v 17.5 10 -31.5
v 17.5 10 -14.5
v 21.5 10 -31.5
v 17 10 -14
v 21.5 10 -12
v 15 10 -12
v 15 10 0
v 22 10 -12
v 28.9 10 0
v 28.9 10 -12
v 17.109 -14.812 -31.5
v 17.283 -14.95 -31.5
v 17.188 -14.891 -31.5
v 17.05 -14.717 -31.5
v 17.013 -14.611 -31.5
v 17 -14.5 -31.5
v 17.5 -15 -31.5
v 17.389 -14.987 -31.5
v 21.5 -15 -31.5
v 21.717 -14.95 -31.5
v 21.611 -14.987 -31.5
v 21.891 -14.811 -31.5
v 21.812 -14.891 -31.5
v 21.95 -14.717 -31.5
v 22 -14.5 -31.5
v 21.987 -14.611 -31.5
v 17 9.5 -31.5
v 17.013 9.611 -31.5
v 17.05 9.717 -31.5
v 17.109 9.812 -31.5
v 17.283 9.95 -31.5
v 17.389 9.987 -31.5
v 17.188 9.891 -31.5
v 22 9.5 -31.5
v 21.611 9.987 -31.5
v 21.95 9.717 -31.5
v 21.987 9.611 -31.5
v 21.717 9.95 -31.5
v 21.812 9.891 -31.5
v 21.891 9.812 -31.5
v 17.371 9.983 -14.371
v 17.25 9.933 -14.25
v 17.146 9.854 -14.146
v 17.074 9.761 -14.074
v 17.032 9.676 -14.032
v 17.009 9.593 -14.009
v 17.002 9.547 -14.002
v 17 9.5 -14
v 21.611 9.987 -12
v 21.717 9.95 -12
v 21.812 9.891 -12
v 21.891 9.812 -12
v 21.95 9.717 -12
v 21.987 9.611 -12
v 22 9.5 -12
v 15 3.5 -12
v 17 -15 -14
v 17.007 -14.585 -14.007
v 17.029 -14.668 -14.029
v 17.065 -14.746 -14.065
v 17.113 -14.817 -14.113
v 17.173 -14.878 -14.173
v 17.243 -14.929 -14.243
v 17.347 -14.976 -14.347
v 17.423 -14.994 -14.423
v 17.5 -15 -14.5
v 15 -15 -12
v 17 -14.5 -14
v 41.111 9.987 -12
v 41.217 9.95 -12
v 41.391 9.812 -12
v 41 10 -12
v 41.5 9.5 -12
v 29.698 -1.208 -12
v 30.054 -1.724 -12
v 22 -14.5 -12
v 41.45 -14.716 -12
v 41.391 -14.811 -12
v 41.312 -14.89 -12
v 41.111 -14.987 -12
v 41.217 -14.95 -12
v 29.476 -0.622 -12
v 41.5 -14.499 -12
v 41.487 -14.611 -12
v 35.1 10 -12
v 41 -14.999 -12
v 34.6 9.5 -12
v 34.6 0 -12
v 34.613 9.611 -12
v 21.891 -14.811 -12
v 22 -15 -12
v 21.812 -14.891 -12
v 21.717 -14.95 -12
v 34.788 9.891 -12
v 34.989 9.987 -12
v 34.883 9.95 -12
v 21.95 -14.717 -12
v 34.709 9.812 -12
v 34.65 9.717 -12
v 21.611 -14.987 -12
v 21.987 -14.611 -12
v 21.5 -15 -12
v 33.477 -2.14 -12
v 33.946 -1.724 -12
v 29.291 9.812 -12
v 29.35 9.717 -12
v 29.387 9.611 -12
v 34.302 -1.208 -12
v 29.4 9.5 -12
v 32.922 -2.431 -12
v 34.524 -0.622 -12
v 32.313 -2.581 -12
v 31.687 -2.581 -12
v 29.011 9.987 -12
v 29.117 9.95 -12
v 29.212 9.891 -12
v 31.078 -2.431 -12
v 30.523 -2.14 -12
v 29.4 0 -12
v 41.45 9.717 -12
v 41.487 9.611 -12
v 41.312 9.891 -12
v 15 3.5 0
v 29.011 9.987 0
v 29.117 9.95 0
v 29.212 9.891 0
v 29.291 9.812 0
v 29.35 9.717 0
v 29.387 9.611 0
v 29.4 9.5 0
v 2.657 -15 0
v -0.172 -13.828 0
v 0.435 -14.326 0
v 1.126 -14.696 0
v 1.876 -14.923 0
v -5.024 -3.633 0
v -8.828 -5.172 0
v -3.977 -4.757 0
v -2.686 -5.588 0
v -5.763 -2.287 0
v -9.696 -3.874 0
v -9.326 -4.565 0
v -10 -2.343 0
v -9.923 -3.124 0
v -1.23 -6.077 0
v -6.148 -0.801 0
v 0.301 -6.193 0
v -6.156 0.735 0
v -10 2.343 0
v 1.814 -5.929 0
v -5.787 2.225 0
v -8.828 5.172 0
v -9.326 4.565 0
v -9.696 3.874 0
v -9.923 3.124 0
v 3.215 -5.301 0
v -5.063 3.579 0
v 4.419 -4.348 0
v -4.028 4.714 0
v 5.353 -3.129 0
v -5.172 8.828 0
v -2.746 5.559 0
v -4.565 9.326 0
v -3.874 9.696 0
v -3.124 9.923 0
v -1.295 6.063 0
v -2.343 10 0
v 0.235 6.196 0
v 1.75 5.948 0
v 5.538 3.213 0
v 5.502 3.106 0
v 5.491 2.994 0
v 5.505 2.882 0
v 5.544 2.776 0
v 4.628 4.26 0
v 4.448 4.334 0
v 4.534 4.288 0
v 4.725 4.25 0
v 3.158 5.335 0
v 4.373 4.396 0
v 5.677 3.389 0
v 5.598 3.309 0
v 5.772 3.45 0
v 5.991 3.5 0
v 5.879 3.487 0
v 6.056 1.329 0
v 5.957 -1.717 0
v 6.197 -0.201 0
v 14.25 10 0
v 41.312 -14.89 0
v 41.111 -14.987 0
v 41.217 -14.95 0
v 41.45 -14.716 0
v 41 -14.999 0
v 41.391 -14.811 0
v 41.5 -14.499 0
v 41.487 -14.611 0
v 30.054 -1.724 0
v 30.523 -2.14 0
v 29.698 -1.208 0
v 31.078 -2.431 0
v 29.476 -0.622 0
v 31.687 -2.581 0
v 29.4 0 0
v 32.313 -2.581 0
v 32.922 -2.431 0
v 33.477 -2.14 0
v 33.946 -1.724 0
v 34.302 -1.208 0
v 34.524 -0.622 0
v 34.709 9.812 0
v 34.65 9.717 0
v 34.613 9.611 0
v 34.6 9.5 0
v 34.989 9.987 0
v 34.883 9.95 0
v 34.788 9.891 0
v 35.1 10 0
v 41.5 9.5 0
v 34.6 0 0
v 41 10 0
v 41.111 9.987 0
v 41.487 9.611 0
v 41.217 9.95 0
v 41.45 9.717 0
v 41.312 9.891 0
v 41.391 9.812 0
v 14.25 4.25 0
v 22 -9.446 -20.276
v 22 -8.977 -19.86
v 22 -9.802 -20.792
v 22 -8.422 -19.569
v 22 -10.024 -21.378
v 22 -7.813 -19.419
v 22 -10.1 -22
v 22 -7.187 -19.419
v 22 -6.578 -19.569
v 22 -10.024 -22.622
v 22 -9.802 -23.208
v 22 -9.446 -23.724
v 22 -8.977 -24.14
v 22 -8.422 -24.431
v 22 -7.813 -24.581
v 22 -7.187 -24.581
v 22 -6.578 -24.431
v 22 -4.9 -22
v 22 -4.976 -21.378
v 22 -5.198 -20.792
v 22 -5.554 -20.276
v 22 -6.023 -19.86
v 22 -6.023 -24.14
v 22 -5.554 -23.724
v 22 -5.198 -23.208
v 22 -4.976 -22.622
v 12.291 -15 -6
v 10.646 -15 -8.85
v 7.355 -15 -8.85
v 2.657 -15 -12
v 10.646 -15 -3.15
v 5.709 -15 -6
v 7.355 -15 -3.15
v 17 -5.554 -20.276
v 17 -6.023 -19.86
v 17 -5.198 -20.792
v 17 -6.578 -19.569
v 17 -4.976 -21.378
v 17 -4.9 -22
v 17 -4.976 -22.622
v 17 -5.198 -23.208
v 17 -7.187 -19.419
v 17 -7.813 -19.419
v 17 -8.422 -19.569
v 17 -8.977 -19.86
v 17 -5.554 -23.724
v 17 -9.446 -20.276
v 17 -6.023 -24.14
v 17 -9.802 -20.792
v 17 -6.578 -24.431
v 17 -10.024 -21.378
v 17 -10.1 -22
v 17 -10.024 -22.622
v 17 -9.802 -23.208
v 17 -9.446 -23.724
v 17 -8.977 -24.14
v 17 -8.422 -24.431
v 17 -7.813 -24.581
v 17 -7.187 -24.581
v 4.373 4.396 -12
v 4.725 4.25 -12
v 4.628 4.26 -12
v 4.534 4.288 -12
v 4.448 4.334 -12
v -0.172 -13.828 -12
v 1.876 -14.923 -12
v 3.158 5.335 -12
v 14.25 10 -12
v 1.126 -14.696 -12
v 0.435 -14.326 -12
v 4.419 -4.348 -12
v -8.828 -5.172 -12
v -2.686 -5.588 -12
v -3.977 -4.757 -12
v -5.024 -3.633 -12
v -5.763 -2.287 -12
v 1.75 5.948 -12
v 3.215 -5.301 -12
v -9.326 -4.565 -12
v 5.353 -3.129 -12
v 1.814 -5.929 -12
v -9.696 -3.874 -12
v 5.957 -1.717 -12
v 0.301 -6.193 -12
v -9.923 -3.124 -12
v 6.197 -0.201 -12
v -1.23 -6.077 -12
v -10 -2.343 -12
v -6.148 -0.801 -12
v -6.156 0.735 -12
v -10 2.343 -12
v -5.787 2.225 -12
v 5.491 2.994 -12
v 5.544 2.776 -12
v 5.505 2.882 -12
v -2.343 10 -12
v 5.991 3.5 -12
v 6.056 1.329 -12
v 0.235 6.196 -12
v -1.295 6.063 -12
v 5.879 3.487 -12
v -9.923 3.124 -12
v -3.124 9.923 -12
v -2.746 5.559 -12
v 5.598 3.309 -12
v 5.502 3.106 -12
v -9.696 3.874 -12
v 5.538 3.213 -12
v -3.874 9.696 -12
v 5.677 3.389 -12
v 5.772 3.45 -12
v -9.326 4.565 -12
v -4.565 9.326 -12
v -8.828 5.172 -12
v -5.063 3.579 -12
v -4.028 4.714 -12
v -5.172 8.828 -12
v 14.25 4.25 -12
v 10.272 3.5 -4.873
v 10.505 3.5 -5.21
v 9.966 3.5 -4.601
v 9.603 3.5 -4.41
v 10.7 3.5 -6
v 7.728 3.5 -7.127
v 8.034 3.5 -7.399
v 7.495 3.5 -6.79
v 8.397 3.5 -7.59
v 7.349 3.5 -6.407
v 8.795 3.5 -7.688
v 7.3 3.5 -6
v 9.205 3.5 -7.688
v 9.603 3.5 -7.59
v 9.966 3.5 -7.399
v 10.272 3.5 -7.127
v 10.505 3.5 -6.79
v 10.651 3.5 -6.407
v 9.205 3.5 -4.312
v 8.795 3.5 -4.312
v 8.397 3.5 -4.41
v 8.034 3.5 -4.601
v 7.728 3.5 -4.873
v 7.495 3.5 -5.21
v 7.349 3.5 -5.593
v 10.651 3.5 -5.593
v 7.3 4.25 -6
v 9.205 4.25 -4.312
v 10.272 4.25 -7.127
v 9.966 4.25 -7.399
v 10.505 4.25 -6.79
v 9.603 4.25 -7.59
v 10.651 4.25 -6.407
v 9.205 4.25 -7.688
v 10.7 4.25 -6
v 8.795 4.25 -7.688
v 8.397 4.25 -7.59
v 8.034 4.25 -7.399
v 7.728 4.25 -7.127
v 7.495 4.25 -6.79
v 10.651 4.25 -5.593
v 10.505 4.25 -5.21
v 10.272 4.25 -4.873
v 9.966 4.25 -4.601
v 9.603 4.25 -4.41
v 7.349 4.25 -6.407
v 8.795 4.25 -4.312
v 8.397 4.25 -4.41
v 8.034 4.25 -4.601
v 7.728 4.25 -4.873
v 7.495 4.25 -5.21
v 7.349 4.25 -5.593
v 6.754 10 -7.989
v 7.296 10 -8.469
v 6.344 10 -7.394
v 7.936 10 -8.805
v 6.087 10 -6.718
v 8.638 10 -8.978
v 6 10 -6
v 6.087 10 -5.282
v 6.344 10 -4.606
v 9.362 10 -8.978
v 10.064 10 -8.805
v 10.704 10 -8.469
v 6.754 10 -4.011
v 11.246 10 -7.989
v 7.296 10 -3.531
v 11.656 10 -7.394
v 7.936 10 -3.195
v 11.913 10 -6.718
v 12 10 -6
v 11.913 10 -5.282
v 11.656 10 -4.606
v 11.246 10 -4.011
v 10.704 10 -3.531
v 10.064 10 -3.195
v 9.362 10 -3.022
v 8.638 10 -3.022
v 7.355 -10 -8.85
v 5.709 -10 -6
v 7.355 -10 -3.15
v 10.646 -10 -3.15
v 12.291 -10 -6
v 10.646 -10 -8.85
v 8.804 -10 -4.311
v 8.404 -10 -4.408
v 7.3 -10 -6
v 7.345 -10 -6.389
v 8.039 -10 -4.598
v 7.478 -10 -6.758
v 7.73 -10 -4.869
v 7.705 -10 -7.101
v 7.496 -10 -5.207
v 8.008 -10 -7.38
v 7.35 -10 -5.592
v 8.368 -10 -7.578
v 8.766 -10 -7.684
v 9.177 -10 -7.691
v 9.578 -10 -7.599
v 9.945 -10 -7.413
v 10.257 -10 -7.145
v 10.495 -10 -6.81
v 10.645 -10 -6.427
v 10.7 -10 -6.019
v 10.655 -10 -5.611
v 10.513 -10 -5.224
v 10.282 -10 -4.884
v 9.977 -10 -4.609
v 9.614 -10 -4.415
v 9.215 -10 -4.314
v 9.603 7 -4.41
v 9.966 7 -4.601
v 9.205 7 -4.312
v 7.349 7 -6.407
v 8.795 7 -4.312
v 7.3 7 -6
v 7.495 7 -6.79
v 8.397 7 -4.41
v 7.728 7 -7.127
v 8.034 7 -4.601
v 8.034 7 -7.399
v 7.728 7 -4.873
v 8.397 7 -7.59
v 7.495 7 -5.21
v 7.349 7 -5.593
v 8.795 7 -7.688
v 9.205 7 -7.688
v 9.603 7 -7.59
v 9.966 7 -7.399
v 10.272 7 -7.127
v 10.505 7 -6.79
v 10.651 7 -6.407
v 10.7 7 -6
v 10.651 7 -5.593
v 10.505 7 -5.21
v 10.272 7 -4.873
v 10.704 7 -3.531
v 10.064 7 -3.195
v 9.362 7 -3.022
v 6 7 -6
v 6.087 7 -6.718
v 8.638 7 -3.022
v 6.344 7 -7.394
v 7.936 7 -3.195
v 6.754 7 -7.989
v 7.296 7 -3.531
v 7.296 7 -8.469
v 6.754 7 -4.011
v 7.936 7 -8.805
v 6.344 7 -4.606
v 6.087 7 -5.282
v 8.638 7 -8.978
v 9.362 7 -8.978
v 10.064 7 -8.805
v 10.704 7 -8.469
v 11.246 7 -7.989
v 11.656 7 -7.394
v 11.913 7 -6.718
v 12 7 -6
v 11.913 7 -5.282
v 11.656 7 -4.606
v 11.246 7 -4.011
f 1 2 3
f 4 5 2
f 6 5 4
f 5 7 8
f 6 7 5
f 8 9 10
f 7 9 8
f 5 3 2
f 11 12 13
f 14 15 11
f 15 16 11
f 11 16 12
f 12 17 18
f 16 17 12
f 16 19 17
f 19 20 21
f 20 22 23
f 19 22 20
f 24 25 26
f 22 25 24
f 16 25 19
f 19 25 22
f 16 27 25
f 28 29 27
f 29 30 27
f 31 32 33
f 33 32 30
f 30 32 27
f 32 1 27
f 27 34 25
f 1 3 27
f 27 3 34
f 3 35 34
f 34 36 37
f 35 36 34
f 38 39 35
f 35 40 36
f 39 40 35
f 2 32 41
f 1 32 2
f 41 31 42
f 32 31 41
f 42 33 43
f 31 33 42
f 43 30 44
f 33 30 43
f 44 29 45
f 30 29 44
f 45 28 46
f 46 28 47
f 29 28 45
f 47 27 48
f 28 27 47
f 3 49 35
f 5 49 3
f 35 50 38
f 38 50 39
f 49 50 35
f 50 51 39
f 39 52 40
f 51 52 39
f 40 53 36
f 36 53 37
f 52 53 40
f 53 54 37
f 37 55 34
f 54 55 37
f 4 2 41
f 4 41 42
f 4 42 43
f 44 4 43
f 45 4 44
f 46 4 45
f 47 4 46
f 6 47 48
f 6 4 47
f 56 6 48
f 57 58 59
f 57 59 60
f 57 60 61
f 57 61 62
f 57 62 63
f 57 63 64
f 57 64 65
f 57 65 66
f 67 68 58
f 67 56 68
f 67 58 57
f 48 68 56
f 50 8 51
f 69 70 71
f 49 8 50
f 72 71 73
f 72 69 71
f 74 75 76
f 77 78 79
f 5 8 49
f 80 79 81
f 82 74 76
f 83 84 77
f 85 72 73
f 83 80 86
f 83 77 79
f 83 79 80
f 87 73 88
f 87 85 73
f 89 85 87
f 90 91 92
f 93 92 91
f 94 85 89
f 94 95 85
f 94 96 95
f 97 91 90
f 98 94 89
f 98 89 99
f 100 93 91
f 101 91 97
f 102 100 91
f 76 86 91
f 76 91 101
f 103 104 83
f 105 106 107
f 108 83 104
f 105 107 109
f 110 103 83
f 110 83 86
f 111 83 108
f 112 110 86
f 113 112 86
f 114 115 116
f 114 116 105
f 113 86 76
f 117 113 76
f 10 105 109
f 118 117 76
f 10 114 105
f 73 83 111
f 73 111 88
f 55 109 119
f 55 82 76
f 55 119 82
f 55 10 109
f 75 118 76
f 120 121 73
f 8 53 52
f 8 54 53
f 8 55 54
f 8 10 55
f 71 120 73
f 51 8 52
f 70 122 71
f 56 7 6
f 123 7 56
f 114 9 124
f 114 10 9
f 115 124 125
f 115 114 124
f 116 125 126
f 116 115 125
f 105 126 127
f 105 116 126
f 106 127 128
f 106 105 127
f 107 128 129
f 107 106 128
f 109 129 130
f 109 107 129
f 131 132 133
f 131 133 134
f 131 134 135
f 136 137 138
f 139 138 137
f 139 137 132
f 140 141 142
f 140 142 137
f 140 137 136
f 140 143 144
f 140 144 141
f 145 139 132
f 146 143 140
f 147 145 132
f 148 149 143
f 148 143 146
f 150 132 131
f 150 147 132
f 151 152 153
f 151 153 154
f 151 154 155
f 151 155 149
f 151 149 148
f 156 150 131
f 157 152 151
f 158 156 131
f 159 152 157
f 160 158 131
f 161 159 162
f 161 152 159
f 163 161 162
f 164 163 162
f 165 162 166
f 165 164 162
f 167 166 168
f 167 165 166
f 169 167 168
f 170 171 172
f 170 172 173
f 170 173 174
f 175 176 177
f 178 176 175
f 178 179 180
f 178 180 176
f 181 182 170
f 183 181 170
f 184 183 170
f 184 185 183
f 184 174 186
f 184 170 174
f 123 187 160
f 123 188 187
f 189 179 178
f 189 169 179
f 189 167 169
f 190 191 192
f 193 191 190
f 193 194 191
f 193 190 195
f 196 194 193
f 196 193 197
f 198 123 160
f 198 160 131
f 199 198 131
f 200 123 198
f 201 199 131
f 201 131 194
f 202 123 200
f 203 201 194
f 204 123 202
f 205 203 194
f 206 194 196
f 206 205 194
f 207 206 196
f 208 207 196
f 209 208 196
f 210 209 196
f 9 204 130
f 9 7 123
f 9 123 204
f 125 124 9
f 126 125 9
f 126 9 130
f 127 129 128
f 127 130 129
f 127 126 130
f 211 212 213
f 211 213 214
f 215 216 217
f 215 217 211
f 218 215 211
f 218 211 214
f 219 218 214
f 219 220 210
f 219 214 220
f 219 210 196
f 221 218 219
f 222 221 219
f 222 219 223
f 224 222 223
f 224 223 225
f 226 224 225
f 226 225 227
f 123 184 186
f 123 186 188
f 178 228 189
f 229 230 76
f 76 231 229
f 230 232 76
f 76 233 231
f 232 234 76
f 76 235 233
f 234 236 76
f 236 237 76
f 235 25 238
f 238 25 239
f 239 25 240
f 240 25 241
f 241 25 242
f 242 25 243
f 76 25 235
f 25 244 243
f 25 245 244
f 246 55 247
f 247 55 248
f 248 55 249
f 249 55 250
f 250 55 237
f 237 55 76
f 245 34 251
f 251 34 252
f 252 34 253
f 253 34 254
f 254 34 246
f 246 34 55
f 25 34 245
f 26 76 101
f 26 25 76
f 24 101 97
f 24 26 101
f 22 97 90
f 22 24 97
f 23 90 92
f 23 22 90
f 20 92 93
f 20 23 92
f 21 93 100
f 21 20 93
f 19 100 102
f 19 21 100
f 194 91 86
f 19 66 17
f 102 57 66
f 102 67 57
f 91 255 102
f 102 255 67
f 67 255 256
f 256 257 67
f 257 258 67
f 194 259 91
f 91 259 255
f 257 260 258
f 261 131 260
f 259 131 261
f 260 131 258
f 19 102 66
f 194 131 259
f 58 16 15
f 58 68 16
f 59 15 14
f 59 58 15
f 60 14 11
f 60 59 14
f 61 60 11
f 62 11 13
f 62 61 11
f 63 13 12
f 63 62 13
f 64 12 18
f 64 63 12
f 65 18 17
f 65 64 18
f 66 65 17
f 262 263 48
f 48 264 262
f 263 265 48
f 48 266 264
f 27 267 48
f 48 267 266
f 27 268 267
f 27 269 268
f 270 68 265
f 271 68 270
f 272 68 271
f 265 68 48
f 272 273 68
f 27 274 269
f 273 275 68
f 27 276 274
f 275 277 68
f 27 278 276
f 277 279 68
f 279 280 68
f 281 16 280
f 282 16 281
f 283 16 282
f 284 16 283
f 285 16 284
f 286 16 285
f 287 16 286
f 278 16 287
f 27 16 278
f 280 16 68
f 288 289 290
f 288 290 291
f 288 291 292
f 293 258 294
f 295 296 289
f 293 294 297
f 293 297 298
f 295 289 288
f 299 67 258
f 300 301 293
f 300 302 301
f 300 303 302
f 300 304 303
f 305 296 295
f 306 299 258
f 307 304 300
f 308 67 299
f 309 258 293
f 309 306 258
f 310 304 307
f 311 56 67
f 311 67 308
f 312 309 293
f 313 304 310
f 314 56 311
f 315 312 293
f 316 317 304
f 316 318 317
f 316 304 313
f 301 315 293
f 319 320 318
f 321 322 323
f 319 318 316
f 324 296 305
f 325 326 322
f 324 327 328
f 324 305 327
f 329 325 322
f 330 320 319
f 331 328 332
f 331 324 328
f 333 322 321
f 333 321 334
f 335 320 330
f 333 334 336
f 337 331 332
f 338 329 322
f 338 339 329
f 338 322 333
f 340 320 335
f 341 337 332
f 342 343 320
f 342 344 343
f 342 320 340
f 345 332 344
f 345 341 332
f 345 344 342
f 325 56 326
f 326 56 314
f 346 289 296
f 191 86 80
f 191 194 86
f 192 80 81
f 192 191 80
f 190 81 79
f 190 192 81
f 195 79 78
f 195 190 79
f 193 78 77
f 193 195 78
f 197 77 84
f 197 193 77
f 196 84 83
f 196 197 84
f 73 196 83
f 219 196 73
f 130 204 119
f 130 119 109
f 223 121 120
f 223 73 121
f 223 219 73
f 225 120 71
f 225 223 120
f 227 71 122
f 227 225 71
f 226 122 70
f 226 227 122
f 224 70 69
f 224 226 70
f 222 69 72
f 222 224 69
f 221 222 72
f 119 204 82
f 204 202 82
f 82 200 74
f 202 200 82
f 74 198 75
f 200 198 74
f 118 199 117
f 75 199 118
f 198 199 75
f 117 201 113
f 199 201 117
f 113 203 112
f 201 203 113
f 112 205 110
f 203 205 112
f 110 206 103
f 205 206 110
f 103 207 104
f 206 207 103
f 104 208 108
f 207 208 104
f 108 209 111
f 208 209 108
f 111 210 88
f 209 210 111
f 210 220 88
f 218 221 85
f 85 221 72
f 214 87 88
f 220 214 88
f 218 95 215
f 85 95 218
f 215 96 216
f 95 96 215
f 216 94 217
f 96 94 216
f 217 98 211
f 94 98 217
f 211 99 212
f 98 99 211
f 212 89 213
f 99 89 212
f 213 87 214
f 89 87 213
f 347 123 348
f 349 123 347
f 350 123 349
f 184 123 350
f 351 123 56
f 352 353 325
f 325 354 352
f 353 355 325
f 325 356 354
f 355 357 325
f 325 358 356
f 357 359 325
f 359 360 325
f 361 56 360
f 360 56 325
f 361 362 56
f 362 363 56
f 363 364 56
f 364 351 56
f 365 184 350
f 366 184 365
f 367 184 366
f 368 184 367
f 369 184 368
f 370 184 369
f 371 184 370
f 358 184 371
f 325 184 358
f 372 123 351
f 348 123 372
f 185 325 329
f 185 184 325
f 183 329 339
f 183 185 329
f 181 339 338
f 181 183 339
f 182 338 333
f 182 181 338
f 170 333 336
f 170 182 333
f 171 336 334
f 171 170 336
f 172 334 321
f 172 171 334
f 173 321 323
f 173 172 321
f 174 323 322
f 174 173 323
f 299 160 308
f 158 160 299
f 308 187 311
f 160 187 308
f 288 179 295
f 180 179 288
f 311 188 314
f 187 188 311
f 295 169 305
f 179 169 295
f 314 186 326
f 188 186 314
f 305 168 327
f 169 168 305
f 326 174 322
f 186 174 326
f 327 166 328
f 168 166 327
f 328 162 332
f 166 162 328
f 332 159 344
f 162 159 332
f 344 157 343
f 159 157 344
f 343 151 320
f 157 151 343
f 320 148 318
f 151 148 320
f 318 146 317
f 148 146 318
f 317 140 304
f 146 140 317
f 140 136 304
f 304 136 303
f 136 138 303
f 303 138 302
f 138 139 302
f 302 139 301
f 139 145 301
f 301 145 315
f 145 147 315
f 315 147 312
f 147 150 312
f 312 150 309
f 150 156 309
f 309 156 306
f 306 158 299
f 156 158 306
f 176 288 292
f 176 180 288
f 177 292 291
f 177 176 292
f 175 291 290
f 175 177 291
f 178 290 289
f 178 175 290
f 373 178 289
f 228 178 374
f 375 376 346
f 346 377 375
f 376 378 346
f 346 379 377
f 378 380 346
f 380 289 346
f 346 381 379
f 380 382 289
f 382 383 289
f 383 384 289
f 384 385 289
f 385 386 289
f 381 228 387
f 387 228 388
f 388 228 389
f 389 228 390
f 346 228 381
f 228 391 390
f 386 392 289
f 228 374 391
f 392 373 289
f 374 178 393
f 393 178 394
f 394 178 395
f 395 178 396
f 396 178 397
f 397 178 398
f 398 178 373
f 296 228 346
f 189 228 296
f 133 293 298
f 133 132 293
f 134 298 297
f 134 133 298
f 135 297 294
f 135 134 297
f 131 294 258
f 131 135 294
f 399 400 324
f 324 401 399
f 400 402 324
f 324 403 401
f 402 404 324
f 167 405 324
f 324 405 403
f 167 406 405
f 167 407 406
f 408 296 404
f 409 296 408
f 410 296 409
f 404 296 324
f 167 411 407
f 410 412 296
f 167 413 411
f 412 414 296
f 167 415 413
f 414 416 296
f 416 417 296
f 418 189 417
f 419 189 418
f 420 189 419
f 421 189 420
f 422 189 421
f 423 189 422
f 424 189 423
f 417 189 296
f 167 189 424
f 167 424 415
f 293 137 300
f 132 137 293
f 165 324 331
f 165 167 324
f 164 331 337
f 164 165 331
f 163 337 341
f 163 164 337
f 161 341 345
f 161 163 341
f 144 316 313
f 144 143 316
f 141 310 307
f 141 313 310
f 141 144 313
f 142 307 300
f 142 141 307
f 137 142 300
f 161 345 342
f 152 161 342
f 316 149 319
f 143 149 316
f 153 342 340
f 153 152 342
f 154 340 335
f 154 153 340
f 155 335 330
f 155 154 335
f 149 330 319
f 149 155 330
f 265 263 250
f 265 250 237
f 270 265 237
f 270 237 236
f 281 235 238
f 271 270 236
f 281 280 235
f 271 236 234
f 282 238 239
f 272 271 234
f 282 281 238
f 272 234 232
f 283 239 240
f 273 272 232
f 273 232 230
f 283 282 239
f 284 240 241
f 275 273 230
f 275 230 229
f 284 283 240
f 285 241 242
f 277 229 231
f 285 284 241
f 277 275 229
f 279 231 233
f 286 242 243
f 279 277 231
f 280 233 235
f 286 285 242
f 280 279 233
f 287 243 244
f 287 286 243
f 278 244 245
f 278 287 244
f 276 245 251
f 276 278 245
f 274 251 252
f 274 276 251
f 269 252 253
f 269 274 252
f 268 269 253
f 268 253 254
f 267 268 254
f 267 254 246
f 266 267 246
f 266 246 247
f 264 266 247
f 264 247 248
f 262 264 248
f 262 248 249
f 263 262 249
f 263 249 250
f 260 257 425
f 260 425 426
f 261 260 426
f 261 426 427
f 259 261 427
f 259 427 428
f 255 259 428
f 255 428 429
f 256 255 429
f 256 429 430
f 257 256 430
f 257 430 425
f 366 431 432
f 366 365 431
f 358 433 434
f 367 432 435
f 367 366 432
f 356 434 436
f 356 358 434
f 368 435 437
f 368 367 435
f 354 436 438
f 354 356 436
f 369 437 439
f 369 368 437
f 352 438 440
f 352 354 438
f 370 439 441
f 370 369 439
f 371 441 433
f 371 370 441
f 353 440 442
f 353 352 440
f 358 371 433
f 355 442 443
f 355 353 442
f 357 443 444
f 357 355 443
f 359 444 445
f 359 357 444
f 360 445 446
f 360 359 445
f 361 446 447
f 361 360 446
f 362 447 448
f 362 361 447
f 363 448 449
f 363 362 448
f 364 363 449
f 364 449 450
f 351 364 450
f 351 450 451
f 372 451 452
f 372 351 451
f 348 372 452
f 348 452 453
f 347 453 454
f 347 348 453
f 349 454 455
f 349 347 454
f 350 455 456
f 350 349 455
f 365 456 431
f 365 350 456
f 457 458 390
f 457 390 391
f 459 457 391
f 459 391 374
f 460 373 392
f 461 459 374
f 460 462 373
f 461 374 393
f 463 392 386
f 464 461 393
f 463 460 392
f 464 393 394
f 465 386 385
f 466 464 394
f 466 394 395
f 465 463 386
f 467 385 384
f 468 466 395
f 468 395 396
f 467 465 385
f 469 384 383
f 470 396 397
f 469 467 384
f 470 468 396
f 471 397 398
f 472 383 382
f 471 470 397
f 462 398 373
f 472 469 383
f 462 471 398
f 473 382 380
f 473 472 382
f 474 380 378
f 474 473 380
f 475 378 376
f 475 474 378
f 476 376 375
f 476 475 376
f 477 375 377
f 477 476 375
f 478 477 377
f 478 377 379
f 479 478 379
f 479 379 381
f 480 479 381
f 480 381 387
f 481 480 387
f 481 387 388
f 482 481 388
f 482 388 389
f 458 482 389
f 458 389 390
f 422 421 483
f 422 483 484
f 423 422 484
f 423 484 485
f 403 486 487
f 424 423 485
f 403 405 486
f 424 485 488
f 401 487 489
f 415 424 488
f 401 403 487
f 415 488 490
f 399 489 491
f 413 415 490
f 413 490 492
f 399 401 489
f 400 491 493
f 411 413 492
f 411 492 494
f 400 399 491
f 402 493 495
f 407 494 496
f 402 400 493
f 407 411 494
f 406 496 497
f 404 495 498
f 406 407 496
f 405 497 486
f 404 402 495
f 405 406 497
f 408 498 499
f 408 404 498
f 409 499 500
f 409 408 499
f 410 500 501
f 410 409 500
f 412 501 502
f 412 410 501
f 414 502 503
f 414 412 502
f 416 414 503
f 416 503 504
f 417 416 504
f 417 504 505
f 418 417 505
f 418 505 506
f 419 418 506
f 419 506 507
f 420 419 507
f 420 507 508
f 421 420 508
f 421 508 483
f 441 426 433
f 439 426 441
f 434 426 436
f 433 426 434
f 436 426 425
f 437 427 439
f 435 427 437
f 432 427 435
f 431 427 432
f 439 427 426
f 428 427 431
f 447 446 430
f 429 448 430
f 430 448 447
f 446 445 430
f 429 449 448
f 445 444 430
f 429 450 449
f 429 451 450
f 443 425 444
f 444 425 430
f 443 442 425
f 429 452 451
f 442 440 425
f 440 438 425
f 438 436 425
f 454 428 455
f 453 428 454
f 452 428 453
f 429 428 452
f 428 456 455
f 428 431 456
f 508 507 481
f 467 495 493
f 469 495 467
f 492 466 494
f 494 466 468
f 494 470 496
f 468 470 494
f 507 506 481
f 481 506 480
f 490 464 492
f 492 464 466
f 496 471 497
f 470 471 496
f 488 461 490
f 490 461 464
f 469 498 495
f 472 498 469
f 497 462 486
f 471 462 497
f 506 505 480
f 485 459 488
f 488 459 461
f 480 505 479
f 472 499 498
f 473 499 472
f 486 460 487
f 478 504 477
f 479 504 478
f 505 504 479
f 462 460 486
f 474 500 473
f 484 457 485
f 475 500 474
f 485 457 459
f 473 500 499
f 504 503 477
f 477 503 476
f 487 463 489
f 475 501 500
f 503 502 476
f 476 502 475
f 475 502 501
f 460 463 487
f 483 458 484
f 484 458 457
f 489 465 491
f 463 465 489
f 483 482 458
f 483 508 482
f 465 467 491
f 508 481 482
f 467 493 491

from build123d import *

# Parameters (mm, degrees)
PAD_DEPTH       = 31.5
SKETCH001_W     = 20
SKETCH001_H     = 30
SKETCH001_W_2   = 27
POCKET_DEPTH    = 19.5
SKETCH002_R     = 2.6
POCKET001_DEPTH = 24.501
SKETCH003_R     = 1.7
POCKET002_DEPTH = 25.001
SKETCH004_R     = 3
POCKET003_DEPTH = 3
POCKET004_DEPTH = 5
CHAMFER_SIZE    = 2
FILLET_R        = 0.5


with BuildPart() as body:
    # Sketch → Pad (new body)
    with BuildSketch(Plane.XY):
        with BuildLine():
            ThreePointArc((-0.171573, -13.828427), (1.126121, -14.695518), (2.656854, -15))
            Line((41.00007, -14.999422), (2.656854, -15))
            ThreePointArc((41.00007, -14.999422), (41.353579, -14.85295), (41.5, -14.499421))
            Line((41.5, 9.5), (41.5, -14.499421))
            ThreePointArc((41.5, 9.5), (41.353578, 9.853528), (41.000071, 10))
            Line((34.6, 10), (41.000071, 10))
            Line((34.6, 10), (34.6, 0))
            ThreePointArc((29.4, 0), (32, -2.6), (34.6, 0))
            Line((29.4, 0), (29.4, 10))
            Line((15, 10), (29.4, 10))
            Line((15, 3.5), (15, 10))
            Line((5.990826, 3.5), (15, 3.5))
            ThreePointArc((5.990826, 3.5), (5.56542, 3.262735), (5.54375, 2.776119))
            ThreePointArc((4.372572, 4.395522), (-5.023841, -3.633322), (5.54375, 2.776119))
            ThreePointArc((4.372572, 4.395522), (4.534461, 4.28781), (4.725198, 4.25))
            Line((14.25, 4.25), (4.725198, 4.25))
            Line((14.25, 10), (14.25, 4.25))
            Line((-2.343146, 10), (14.25, 10))
            ThreePointArc((-2.343146, 10), (-3.873879, 9.695518), (-5.171573, 8.828427))
            Line((-5.171573, 8.828427), (-8.828427, 5.171573))
            ThreePointArc((-8.828427, 5.171573), (-9.695518, 3.873879), (-10, 2.343146))
            Line((-10, -2.343146), (-10, 2.343146))
            ThreePointArc((-10, -2.343146), (-9.695518, -3.873879), (-8.828427, -5.171573))
            Line((-8.828427, -5.171573), (-0.171573, -13.828427))
        make_face()
    extrude(amount=PAD_DEPTH)

    # Sketch001 (on Face26 of Pad) → Pocket (cut)
    with BuildSketch(Plane.XY.offset(31.5)):
        with Locations((32, 0)):
            Rectangle(SKETCH001_W, SKETCH001_H)
        with Locations((3.5, 0)):
            Rectangle(SKETCH001_W_2, SKETCH001_H)
    extrude(amount=-POCKET_DEPTH, mode=Mode.SUBTRACT)

    # Sketch002 (on Face29 of Pocket) → Pocket001 (cut, through all)
    with BuildSketch(Plane(origin=(17, 0, 0), x_dir=(0, -1, 0), z_dir=(-1, 0, 0))):
        with Locations((7.5, 22)):
            Circle(SKETCH002_R)
    extrude(amount=-POCKET001_DEPTH, mode=Mode.SUBTRACT)

    # Sketch003 (on Face13 of Pocket001) → Pocket002 (cut, through all)
    with BuildSketch(Plane(origin=(0, 10, 0), x_dir=(-1, 0, 0), z_dir=(0, 1, 0))):
        with Locations((-9, 6)):
            Circle(SKETCH003_R)
    extrude(amount=-POCKET002_DEPTH, mode=Mode.SUBTRACT)

    # Sketch004 (on Face13 of Pocket002) → Pocket003 (cut)
    with BuildSketch(Plane(origin=(0, 10, 0), x_dir=(-1, 0, 0), z_dir=(0, 1, 0))):
        with Locations((-9, 6)):
            Circle(SKETCH004_R)
    extrude(amount=-POCKET003_DEPTH, mode=Mode.SUBTRACT)

    # Sketch005 (on Face21 of Pocket003) → Pocket004 (cut)
    with BuildSketch(Plane(origin=(0.000226, -15.00004, 0), x_dir=(1, 1.5e-05, 0), z_dir=(1.5e-05, -1, 0))):
        Polygon((10.645448, 3.15), (12.290897, 6), (10.645448, 8.85), (7.354552, 8.85), (5.709103, 6), (7.354552, 3.15), align=None)
    extrude(amount=-POCKET004_DEPTH, mode=Mode.SUBTRACT)

    # Chamfer
    chamfer_edges = [body.edges().sort_by_distance(p)[0] for p in [
        (17, -2.499892, 12),
    ]]
    chamfer(chamfer_edges, length=CHAMFER_SIZE)

    # Fillet
    fillet_edges = [body.edges().sort_by_distance(p)[0] for p in [
        (34.6, 10, 6),
        (29.4, 10, 6),
        (22, 10, 21.75),
        (22, -14.999708, 21.75),
        (17, 10, 22.75),
        (17, -14.999784, 22.75),
    ]]
    fillet(fillet_edges, radius=FILLET_R)


with BuildPart() as part_mirroring:
    # Part__Mirroring: instance of Body
    add(body.part.mirror(Plane(origin=(15.75, -2.5, 0), x_dir=(0, 1, 0), z_dir=(0, 0, 1))))


solid = part_mirroring.part
